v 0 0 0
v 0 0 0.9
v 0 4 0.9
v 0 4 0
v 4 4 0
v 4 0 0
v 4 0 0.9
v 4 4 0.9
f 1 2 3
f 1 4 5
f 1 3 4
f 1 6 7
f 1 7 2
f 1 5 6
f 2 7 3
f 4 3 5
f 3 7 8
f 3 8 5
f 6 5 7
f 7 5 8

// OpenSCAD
/* Warning, this is a very basic generator with a lot of approximation 
input data : [VQFN, U3B, 4x4x0.9mm, 24, , B, C04-21483B]
generated by com.zoubworld.electronics.cad.model3d.Basic
Date : Sun Feb 15 10:50:49 CET 2026
*/

//body
color("black")
translate([0,0,0])
cube([4.0,4.0,0.9], center=false);
